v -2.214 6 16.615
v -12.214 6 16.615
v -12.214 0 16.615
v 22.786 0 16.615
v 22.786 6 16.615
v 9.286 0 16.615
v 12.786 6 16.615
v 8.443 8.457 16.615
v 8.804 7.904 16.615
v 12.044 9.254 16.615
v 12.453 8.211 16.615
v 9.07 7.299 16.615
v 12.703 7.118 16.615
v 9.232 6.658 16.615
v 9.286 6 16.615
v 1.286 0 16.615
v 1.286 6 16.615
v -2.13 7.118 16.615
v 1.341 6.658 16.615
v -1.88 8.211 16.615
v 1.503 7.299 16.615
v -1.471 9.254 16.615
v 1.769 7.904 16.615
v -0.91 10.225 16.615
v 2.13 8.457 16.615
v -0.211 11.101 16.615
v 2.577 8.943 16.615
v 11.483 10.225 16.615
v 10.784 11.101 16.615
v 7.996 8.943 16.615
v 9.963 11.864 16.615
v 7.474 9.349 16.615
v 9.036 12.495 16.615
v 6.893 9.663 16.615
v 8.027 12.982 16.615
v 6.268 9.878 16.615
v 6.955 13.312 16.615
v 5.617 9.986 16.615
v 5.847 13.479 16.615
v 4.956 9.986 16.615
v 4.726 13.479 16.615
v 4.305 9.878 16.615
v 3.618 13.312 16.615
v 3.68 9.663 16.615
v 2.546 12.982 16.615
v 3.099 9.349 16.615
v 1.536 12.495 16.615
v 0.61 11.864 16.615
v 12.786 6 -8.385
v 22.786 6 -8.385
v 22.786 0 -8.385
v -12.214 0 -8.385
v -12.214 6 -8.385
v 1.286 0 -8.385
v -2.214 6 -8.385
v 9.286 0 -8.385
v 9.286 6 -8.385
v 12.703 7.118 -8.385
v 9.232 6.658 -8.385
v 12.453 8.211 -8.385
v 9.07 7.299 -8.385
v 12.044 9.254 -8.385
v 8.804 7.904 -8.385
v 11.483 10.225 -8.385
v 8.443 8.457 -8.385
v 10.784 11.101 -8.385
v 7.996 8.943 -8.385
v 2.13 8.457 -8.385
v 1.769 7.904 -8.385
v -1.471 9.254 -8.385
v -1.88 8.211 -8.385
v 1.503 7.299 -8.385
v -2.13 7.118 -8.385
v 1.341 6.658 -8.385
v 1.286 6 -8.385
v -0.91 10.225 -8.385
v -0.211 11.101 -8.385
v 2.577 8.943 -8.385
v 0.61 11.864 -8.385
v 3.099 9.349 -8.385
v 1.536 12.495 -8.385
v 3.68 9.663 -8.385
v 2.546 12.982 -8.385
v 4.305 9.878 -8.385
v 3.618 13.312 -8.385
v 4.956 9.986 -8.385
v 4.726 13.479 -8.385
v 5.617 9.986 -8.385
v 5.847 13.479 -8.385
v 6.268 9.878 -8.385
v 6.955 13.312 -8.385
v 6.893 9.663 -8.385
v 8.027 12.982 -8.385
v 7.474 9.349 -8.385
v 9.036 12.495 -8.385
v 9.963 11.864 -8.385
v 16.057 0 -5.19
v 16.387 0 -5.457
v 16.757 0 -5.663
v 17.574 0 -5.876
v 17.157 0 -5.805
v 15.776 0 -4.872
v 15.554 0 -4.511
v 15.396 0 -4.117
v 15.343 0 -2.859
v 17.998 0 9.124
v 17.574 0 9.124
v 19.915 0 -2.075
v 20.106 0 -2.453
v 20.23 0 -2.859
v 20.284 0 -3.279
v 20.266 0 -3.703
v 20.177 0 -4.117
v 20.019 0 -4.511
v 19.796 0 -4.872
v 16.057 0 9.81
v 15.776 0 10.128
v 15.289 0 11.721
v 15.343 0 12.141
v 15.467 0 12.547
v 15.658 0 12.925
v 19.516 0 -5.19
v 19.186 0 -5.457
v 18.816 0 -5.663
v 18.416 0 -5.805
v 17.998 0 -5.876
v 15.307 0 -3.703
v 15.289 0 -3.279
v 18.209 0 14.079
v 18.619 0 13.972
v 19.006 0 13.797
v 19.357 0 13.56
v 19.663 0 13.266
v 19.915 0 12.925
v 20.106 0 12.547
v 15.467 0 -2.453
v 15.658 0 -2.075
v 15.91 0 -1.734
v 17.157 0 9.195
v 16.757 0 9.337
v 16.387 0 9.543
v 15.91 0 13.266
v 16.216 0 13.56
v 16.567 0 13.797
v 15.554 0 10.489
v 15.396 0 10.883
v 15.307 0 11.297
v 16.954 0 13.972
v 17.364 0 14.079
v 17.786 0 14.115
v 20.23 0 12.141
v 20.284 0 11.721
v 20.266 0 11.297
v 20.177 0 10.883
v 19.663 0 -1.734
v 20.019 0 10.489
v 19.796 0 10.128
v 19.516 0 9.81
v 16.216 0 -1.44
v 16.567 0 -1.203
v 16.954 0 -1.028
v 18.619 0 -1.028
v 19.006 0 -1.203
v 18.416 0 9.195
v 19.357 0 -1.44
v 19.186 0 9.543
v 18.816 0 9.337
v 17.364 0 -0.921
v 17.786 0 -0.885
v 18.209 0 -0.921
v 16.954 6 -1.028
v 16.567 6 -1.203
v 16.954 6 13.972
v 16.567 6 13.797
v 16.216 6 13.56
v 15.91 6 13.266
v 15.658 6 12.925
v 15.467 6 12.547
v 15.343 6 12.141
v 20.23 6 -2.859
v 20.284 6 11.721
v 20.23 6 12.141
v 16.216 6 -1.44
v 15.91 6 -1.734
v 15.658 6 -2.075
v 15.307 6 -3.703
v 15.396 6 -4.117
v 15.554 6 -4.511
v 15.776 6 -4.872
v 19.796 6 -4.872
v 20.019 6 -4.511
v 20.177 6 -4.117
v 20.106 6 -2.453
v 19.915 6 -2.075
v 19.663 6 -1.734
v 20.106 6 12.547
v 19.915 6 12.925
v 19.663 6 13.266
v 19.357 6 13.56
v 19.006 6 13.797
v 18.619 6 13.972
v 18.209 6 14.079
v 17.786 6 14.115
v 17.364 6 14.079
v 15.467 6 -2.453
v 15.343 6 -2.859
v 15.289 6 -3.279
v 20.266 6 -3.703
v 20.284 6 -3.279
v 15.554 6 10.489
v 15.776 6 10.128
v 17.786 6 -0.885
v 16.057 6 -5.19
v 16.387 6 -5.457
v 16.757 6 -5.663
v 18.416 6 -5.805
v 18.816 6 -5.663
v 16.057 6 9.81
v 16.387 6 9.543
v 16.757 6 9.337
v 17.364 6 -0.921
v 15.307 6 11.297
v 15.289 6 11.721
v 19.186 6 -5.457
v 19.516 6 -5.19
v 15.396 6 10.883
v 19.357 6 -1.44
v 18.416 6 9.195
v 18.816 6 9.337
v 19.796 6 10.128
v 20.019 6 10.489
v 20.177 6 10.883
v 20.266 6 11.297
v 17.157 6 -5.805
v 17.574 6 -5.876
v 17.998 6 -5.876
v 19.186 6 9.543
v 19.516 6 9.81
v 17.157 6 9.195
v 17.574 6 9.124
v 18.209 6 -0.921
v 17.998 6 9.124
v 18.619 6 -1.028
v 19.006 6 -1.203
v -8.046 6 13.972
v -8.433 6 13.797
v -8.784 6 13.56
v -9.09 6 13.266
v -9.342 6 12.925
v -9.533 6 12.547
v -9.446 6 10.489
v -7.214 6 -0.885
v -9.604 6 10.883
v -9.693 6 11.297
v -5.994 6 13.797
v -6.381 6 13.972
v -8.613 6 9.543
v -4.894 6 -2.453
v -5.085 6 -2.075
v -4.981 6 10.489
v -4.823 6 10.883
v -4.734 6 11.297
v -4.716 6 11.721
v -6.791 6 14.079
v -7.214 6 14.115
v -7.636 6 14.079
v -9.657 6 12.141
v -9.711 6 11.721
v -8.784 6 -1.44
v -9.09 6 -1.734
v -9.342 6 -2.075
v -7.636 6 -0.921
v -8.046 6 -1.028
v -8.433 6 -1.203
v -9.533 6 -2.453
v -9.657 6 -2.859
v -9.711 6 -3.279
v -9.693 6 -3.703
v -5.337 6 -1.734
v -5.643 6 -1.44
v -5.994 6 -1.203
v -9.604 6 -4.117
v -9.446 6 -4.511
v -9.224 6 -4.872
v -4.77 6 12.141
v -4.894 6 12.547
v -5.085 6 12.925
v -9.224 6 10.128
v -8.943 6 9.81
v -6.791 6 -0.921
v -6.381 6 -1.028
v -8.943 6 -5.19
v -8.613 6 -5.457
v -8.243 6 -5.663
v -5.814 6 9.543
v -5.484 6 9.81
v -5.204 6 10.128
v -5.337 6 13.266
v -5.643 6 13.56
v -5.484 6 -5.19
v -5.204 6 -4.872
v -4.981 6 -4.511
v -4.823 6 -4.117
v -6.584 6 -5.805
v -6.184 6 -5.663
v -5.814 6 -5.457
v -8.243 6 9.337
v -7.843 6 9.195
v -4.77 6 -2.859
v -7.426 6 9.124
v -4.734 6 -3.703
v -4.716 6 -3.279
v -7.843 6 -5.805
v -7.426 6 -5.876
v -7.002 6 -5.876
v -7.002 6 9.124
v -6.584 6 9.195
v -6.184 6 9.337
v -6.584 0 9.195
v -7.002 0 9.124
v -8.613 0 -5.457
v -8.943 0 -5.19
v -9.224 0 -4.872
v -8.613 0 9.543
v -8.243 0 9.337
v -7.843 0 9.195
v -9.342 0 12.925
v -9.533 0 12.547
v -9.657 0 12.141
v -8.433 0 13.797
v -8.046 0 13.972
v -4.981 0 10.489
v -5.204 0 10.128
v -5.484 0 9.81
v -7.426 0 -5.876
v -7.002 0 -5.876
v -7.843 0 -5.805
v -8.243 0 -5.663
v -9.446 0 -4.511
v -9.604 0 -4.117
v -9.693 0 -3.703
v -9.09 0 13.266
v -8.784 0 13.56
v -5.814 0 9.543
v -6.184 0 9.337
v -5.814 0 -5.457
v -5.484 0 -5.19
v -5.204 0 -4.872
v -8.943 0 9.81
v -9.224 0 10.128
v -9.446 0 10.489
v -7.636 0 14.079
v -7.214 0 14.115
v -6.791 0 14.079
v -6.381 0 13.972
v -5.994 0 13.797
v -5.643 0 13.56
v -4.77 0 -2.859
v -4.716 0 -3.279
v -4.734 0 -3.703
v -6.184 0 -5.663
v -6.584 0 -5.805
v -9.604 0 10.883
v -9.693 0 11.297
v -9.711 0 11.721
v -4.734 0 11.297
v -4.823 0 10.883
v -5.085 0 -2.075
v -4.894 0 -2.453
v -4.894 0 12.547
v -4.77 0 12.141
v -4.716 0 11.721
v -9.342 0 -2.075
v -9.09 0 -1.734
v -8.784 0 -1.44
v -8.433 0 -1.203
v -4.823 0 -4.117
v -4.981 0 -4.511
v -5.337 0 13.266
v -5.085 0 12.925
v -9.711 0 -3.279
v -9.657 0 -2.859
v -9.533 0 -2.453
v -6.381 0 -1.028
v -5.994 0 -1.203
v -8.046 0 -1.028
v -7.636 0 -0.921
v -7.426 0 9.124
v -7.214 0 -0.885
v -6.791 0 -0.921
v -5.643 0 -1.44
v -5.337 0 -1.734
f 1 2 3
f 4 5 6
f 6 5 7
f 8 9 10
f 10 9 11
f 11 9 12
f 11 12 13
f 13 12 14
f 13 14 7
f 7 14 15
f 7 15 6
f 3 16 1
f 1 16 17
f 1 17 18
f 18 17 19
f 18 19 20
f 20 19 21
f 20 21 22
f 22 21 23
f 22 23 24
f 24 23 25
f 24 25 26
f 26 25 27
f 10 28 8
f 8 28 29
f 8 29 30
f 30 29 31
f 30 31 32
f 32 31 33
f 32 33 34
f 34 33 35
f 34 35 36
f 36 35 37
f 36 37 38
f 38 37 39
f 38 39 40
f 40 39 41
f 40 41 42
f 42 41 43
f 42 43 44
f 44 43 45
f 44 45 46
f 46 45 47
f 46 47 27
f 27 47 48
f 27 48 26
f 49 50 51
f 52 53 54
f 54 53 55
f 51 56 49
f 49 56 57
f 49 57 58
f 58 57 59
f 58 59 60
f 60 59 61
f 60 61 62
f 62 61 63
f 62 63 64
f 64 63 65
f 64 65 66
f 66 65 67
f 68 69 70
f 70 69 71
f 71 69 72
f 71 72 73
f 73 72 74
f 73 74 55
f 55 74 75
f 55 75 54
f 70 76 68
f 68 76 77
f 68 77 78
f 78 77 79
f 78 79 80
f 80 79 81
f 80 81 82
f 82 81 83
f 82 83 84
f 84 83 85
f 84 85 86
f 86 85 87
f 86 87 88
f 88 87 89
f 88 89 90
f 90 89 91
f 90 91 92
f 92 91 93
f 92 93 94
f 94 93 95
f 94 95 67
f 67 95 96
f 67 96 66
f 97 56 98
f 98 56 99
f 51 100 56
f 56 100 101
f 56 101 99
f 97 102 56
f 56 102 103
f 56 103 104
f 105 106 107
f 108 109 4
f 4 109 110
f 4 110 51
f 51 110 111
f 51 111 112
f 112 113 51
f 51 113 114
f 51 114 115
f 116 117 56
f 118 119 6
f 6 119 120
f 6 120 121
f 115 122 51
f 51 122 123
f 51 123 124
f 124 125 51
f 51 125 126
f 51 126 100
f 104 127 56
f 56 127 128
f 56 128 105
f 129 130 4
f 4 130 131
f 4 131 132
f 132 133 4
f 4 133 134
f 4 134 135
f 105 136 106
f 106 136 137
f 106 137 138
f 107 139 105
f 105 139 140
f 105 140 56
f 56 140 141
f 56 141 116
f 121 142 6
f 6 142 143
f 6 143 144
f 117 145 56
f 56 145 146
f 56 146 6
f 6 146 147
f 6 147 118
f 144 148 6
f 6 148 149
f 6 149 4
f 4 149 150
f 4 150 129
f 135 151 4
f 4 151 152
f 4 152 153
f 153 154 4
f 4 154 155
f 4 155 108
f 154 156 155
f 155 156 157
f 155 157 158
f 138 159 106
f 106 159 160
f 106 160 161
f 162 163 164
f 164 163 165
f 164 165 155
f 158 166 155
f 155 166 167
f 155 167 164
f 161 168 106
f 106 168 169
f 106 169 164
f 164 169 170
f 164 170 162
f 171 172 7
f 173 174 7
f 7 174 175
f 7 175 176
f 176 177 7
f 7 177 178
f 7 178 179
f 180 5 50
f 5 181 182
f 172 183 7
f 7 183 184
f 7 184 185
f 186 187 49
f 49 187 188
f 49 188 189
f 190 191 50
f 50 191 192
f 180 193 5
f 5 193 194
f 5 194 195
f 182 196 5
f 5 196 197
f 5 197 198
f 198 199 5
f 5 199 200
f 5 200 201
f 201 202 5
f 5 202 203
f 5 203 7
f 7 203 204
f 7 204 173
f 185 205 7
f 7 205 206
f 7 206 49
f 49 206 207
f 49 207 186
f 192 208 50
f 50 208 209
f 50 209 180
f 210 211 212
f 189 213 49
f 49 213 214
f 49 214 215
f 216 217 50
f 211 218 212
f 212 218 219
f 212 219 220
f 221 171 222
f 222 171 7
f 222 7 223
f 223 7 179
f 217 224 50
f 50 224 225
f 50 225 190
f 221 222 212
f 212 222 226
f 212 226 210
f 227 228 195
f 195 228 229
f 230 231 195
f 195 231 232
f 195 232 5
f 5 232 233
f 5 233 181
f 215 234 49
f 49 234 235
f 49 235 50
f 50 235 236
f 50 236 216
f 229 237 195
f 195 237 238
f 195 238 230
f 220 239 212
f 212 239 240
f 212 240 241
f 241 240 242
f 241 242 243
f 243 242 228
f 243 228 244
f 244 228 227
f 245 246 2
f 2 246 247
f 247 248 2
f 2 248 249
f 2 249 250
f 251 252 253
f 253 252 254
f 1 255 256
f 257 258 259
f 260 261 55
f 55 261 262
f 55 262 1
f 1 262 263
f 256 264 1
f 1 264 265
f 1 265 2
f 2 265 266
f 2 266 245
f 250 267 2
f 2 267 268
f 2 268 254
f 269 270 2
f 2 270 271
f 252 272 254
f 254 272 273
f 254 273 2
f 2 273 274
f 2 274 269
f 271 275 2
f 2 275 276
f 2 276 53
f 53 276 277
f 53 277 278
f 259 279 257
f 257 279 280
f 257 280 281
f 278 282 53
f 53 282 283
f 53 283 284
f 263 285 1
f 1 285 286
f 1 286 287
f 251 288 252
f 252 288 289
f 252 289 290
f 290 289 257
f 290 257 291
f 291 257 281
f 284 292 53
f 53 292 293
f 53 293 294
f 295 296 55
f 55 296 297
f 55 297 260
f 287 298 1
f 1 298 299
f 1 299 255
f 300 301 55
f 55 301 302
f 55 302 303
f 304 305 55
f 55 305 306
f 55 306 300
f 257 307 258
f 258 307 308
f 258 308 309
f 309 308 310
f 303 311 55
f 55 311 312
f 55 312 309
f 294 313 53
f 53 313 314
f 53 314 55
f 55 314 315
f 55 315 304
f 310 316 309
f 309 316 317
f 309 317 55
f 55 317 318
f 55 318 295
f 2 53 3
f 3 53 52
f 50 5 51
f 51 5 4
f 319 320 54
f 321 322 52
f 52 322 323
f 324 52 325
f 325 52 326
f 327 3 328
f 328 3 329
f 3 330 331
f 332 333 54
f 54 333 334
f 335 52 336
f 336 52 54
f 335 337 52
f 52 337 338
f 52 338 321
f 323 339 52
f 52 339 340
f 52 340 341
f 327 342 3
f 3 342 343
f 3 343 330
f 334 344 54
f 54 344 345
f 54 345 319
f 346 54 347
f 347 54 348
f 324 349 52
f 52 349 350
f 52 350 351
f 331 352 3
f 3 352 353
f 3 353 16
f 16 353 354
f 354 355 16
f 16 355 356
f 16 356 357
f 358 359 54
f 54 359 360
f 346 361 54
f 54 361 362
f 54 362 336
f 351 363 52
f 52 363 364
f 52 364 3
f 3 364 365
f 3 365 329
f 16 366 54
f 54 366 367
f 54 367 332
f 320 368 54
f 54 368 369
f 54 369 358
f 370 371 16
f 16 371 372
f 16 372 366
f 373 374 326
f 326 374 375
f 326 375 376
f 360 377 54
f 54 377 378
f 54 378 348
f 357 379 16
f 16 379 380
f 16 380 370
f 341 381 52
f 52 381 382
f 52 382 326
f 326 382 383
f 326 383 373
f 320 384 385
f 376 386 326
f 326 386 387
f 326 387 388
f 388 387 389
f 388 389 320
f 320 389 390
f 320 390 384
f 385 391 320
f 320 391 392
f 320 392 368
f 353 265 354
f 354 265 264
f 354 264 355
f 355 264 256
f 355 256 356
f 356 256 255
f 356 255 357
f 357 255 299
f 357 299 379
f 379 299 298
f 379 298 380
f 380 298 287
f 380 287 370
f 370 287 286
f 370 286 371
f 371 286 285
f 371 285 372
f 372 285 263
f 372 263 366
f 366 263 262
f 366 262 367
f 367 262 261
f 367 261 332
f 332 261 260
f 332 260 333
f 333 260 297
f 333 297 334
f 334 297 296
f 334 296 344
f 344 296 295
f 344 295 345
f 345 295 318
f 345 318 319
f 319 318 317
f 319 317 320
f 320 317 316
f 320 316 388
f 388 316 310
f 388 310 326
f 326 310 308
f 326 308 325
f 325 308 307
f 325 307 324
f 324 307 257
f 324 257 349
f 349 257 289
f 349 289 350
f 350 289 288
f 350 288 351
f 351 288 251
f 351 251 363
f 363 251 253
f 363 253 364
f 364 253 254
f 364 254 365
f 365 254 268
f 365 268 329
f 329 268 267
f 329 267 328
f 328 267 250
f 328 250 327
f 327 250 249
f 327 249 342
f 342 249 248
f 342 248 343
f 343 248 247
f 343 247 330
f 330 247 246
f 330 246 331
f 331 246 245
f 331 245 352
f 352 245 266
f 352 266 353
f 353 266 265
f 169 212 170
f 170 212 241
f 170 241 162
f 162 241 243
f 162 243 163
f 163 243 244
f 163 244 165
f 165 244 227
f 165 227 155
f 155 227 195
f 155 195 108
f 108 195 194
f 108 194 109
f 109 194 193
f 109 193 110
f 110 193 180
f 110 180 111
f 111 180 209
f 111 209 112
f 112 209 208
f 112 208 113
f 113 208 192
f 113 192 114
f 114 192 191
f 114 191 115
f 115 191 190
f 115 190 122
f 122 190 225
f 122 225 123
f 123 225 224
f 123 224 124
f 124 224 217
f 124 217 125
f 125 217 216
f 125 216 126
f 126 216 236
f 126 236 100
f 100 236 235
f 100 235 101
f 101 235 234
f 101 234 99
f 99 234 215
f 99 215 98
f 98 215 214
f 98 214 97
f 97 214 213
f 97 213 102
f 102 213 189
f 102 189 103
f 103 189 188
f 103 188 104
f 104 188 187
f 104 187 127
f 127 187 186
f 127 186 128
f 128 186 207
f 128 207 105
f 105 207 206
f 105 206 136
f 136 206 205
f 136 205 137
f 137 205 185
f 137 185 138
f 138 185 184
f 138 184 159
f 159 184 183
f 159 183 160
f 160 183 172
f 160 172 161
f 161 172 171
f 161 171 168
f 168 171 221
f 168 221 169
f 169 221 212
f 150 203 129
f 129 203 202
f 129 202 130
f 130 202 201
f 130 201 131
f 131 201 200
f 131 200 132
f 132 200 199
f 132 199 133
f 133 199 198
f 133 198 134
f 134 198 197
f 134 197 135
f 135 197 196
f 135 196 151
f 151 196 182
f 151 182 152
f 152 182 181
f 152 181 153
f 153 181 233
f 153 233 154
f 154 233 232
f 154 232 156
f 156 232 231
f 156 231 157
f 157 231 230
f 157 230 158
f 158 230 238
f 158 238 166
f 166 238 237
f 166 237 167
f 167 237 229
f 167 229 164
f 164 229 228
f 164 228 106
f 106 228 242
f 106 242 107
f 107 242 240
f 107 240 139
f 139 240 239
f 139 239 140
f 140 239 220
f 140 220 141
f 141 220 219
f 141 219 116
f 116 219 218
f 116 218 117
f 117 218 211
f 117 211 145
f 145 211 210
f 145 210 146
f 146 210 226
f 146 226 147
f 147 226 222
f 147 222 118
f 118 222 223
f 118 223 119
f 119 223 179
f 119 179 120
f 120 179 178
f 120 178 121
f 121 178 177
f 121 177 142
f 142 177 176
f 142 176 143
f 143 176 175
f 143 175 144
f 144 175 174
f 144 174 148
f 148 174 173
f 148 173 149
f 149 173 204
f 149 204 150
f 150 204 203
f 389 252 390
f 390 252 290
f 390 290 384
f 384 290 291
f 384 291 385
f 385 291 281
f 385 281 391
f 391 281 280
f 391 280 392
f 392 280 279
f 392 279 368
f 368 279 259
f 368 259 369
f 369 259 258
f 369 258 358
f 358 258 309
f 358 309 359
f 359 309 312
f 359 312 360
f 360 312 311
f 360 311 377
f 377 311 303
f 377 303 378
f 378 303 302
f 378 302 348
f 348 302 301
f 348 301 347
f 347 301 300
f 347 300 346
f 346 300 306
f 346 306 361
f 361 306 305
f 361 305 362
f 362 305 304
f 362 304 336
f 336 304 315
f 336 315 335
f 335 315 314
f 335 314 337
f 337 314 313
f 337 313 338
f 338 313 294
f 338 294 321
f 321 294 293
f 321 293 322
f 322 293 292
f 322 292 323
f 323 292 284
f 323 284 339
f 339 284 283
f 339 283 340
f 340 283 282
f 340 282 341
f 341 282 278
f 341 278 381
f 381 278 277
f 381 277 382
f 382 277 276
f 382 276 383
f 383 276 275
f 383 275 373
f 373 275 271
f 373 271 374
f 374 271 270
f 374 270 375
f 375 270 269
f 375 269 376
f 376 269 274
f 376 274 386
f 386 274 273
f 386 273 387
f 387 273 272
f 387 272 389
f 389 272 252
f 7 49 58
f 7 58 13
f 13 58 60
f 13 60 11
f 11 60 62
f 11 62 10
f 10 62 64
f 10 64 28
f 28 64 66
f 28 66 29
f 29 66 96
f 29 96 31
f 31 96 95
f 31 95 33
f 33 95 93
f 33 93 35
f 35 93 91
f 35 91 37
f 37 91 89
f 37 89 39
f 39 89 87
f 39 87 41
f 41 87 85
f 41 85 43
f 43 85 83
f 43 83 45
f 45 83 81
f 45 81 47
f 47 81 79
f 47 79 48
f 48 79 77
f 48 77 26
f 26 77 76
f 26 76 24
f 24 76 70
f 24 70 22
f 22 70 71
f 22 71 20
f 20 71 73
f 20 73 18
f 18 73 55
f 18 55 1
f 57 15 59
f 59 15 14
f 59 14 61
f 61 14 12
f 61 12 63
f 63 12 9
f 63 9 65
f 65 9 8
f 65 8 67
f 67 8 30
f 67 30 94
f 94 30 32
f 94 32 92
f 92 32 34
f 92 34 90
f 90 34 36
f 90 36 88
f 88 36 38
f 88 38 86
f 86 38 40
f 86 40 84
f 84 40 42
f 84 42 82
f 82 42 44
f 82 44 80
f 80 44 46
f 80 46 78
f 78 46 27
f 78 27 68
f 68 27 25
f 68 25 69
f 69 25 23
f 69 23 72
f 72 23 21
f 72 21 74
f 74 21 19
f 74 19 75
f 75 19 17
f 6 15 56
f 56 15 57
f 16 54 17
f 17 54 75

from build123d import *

# Parameters (mm, degrees)
SKETCH1_W           = 35
SKETCH1_H           = 25
BOSS_EXTRUDE1_DEPTH = 6
SKETCH2_R           = 2.5
CUT_EXTRUDE1_DEPTH  = 6
SKETCH3_W           = 7.5
SKETCH3_H           = 25
REVOLVE1_ANGLE      = 180
CUT_EXTRUDE2_DEPTH  = 36


with BuildPart() as part:
    # Sketch1 → Boss-Extrude1 (new body)
    with BuildSketch(Plane(origin=(0, 0, 0), x_dir=(1, 0, 0), z_dir=(0, 1, 0))):
        with Locations((5.286458333, -4.114583333)):
            Rectangle(SKETCH1_W, SKETCH1_H)
    extrude(amount=BOSS_EXTRUDE1_DEPTH)

    # Sketch2 → Cut-Extrude1 (cut)
    with BuildSketch(Plane(origin=(0, 6, 0), x_dir=(1, 0, 0), z_dir=(0, 1, 0))):
        with Locations((-7.213541667, -11.614583333)):
            Circle(SKETCH2_R)
        with Locations((17.786458333, 3.385416667)):
            Circle(SKETCH2_R)
        with Locations((17.786458333, -11.614583333)):
            Circle(SKETCH2_R)
        with Locations((-7.213541667, 3.385416667)):
            Circle(SKETCH2_R)
    extrude(amount=-CUT_EXTRUDE1_DEPTH, mode=Mode.SUBTRACT)

    # Sketch3 → Revolve1 (revolve)
    with BuildSketch(Plane(origin=(0, 6, 0), x_dir=(1, 0, 0), z_dir=(0, 1, 0))):
        with Locations((9.036458333, -4.114583333)):
            Rectangle(SKETCH3_W, SKETCH3_H)
    revolve(axis=Axis((5.286458333, 6, -8.385416667), (0, 0, 1)), revolution_arc=REVOLVE1_ANGLE)

    # Sketch4 → Cut-Extrude2 (cut)
    with BuildSketch(Plane.XY.offset(16.614583333)):
        with BuildLine():
            ThreePointArc((9.286458333, 6), (5.286458333, 10), (1.286458333, 6))
            Line((1.286458333, 6), (9.286458333, 6))
        make_face()
        with BuildLine():
            Line((9.286458333, 6), (1.286458333, 6))
            ThreePointArc((1.286458333, 6), (5.286458333, 2), (9.286458333, 6))
        make_face()
        with BuildLine():
            ThreePointArc((9.286458333, 6), (5.286458333, 2), (1.286458333, 6))
            Line((1.286458333, 6), (1.286458333, 0))
            Line((1.286458333, 0), (9.286458333, 0))
            Line((9.286458333, 0), (9.286458333, 6))
        make_face()
    extrude(amount=-CUT_EXTRUDE2_DEPTH, mode=Mode.SUBTRACT)


solid = part.part
